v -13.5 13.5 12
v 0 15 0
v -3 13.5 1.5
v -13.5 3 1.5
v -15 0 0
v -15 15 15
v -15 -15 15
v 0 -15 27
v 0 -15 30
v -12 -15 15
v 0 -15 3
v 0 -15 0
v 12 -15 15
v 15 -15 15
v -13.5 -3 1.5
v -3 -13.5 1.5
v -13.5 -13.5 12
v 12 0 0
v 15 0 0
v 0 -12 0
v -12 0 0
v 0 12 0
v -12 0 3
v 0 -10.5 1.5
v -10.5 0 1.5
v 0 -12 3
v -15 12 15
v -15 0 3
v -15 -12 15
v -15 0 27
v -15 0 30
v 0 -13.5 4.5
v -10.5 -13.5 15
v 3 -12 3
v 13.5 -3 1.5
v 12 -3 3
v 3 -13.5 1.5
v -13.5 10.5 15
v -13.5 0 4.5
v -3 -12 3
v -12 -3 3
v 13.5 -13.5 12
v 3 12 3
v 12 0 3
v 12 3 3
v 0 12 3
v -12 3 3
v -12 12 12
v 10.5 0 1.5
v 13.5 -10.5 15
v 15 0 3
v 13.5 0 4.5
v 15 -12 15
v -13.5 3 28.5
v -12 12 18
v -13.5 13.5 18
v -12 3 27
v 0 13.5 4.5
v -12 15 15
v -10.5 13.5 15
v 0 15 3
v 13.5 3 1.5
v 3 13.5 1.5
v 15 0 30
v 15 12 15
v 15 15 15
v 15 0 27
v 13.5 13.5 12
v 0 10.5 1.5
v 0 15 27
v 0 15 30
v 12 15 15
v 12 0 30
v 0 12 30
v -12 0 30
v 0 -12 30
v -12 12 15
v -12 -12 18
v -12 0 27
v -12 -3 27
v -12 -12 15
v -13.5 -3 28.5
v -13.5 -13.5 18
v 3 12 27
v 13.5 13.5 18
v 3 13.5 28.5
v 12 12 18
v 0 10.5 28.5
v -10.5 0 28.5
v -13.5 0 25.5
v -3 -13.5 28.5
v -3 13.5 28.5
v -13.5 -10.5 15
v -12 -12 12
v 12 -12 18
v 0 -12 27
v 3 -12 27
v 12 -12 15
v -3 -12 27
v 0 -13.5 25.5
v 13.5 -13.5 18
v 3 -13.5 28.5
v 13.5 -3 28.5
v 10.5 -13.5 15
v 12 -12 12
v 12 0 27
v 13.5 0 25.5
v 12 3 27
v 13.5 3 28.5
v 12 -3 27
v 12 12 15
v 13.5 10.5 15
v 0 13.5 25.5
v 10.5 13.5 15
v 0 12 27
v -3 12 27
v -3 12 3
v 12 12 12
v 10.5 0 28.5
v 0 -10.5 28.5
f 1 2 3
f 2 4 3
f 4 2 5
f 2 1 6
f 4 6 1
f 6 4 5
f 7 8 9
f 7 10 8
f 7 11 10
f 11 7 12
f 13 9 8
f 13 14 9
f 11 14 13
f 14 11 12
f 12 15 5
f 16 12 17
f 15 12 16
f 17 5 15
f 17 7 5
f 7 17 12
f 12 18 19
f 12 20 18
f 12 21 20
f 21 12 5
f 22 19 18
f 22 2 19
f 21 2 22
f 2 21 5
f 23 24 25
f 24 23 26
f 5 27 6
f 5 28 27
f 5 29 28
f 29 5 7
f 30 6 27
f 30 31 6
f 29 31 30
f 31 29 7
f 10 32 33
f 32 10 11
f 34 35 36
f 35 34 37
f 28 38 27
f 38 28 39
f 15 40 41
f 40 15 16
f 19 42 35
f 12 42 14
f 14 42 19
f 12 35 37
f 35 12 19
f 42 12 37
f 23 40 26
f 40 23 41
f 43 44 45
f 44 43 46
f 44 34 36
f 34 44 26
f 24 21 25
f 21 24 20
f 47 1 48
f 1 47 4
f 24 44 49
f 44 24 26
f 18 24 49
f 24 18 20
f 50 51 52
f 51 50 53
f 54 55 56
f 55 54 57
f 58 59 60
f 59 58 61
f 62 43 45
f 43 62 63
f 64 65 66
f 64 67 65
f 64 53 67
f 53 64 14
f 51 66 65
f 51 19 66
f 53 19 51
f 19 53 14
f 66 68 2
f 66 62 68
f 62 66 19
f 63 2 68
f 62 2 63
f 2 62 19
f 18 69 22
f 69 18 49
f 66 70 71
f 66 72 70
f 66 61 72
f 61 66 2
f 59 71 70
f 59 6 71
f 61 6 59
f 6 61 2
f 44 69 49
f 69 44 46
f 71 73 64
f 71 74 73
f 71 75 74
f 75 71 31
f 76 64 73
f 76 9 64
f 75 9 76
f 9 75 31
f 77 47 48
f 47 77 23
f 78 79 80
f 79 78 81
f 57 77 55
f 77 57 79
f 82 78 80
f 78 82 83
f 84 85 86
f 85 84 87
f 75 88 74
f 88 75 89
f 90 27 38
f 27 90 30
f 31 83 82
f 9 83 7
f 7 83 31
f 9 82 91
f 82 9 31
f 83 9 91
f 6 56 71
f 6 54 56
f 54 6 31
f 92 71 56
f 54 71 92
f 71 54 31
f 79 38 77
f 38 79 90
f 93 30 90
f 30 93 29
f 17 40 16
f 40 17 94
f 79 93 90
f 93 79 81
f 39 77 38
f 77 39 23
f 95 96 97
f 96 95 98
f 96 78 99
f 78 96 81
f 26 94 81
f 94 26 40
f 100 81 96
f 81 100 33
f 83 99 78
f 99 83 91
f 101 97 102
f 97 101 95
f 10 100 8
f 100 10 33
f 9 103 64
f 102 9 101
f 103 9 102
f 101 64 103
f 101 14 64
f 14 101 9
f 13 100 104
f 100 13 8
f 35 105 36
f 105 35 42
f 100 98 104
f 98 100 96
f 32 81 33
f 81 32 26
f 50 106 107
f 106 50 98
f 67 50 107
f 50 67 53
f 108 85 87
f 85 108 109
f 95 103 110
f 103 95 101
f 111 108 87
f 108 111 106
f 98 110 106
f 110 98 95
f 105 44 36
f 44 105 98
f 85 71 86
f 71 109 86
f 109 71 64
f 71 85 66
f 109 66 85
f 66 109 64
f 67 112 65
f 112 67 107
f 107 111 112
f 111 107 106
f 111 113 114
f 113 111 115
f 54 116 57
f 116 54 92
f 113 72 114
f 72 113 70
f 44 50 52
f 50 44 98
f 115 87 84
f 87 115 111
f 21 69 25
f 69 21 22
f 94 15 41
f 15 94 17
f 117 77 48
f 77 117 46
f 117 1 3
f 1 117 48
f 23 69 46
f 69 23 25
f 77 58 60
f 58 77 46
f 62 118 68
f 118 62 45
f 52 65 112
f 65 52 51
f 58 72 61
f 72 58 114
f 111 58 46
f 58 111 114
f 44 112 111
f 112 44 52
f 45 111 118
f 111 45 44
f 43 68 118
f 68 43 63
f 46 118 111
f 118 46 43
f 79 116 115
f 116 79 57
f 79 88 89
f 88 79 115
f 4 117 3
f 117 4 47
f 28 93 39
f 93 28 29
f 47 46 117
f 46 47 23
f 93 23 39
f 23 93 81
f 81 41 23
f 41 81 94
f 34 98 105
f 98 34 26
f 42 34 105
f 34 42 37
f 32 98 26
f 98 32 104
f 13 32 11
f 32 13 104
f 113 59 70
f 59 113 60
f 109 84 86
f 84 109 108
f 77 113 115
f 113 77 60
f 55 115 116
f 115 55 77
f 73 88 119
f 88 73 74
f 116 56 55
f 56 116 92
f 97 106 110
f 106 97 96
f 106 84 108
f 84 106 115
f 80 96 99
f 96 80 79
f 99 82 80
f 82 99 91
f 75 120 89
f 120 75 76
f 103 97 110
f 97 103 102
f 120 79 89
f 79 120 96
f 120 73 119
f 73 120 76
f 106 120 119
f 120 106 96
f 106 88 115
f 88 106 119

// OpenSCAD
// shape height
sh = 30;
// border width
bw = 3;

include <polyhedra.scad>;

poly_wire(cuboctahedron);
